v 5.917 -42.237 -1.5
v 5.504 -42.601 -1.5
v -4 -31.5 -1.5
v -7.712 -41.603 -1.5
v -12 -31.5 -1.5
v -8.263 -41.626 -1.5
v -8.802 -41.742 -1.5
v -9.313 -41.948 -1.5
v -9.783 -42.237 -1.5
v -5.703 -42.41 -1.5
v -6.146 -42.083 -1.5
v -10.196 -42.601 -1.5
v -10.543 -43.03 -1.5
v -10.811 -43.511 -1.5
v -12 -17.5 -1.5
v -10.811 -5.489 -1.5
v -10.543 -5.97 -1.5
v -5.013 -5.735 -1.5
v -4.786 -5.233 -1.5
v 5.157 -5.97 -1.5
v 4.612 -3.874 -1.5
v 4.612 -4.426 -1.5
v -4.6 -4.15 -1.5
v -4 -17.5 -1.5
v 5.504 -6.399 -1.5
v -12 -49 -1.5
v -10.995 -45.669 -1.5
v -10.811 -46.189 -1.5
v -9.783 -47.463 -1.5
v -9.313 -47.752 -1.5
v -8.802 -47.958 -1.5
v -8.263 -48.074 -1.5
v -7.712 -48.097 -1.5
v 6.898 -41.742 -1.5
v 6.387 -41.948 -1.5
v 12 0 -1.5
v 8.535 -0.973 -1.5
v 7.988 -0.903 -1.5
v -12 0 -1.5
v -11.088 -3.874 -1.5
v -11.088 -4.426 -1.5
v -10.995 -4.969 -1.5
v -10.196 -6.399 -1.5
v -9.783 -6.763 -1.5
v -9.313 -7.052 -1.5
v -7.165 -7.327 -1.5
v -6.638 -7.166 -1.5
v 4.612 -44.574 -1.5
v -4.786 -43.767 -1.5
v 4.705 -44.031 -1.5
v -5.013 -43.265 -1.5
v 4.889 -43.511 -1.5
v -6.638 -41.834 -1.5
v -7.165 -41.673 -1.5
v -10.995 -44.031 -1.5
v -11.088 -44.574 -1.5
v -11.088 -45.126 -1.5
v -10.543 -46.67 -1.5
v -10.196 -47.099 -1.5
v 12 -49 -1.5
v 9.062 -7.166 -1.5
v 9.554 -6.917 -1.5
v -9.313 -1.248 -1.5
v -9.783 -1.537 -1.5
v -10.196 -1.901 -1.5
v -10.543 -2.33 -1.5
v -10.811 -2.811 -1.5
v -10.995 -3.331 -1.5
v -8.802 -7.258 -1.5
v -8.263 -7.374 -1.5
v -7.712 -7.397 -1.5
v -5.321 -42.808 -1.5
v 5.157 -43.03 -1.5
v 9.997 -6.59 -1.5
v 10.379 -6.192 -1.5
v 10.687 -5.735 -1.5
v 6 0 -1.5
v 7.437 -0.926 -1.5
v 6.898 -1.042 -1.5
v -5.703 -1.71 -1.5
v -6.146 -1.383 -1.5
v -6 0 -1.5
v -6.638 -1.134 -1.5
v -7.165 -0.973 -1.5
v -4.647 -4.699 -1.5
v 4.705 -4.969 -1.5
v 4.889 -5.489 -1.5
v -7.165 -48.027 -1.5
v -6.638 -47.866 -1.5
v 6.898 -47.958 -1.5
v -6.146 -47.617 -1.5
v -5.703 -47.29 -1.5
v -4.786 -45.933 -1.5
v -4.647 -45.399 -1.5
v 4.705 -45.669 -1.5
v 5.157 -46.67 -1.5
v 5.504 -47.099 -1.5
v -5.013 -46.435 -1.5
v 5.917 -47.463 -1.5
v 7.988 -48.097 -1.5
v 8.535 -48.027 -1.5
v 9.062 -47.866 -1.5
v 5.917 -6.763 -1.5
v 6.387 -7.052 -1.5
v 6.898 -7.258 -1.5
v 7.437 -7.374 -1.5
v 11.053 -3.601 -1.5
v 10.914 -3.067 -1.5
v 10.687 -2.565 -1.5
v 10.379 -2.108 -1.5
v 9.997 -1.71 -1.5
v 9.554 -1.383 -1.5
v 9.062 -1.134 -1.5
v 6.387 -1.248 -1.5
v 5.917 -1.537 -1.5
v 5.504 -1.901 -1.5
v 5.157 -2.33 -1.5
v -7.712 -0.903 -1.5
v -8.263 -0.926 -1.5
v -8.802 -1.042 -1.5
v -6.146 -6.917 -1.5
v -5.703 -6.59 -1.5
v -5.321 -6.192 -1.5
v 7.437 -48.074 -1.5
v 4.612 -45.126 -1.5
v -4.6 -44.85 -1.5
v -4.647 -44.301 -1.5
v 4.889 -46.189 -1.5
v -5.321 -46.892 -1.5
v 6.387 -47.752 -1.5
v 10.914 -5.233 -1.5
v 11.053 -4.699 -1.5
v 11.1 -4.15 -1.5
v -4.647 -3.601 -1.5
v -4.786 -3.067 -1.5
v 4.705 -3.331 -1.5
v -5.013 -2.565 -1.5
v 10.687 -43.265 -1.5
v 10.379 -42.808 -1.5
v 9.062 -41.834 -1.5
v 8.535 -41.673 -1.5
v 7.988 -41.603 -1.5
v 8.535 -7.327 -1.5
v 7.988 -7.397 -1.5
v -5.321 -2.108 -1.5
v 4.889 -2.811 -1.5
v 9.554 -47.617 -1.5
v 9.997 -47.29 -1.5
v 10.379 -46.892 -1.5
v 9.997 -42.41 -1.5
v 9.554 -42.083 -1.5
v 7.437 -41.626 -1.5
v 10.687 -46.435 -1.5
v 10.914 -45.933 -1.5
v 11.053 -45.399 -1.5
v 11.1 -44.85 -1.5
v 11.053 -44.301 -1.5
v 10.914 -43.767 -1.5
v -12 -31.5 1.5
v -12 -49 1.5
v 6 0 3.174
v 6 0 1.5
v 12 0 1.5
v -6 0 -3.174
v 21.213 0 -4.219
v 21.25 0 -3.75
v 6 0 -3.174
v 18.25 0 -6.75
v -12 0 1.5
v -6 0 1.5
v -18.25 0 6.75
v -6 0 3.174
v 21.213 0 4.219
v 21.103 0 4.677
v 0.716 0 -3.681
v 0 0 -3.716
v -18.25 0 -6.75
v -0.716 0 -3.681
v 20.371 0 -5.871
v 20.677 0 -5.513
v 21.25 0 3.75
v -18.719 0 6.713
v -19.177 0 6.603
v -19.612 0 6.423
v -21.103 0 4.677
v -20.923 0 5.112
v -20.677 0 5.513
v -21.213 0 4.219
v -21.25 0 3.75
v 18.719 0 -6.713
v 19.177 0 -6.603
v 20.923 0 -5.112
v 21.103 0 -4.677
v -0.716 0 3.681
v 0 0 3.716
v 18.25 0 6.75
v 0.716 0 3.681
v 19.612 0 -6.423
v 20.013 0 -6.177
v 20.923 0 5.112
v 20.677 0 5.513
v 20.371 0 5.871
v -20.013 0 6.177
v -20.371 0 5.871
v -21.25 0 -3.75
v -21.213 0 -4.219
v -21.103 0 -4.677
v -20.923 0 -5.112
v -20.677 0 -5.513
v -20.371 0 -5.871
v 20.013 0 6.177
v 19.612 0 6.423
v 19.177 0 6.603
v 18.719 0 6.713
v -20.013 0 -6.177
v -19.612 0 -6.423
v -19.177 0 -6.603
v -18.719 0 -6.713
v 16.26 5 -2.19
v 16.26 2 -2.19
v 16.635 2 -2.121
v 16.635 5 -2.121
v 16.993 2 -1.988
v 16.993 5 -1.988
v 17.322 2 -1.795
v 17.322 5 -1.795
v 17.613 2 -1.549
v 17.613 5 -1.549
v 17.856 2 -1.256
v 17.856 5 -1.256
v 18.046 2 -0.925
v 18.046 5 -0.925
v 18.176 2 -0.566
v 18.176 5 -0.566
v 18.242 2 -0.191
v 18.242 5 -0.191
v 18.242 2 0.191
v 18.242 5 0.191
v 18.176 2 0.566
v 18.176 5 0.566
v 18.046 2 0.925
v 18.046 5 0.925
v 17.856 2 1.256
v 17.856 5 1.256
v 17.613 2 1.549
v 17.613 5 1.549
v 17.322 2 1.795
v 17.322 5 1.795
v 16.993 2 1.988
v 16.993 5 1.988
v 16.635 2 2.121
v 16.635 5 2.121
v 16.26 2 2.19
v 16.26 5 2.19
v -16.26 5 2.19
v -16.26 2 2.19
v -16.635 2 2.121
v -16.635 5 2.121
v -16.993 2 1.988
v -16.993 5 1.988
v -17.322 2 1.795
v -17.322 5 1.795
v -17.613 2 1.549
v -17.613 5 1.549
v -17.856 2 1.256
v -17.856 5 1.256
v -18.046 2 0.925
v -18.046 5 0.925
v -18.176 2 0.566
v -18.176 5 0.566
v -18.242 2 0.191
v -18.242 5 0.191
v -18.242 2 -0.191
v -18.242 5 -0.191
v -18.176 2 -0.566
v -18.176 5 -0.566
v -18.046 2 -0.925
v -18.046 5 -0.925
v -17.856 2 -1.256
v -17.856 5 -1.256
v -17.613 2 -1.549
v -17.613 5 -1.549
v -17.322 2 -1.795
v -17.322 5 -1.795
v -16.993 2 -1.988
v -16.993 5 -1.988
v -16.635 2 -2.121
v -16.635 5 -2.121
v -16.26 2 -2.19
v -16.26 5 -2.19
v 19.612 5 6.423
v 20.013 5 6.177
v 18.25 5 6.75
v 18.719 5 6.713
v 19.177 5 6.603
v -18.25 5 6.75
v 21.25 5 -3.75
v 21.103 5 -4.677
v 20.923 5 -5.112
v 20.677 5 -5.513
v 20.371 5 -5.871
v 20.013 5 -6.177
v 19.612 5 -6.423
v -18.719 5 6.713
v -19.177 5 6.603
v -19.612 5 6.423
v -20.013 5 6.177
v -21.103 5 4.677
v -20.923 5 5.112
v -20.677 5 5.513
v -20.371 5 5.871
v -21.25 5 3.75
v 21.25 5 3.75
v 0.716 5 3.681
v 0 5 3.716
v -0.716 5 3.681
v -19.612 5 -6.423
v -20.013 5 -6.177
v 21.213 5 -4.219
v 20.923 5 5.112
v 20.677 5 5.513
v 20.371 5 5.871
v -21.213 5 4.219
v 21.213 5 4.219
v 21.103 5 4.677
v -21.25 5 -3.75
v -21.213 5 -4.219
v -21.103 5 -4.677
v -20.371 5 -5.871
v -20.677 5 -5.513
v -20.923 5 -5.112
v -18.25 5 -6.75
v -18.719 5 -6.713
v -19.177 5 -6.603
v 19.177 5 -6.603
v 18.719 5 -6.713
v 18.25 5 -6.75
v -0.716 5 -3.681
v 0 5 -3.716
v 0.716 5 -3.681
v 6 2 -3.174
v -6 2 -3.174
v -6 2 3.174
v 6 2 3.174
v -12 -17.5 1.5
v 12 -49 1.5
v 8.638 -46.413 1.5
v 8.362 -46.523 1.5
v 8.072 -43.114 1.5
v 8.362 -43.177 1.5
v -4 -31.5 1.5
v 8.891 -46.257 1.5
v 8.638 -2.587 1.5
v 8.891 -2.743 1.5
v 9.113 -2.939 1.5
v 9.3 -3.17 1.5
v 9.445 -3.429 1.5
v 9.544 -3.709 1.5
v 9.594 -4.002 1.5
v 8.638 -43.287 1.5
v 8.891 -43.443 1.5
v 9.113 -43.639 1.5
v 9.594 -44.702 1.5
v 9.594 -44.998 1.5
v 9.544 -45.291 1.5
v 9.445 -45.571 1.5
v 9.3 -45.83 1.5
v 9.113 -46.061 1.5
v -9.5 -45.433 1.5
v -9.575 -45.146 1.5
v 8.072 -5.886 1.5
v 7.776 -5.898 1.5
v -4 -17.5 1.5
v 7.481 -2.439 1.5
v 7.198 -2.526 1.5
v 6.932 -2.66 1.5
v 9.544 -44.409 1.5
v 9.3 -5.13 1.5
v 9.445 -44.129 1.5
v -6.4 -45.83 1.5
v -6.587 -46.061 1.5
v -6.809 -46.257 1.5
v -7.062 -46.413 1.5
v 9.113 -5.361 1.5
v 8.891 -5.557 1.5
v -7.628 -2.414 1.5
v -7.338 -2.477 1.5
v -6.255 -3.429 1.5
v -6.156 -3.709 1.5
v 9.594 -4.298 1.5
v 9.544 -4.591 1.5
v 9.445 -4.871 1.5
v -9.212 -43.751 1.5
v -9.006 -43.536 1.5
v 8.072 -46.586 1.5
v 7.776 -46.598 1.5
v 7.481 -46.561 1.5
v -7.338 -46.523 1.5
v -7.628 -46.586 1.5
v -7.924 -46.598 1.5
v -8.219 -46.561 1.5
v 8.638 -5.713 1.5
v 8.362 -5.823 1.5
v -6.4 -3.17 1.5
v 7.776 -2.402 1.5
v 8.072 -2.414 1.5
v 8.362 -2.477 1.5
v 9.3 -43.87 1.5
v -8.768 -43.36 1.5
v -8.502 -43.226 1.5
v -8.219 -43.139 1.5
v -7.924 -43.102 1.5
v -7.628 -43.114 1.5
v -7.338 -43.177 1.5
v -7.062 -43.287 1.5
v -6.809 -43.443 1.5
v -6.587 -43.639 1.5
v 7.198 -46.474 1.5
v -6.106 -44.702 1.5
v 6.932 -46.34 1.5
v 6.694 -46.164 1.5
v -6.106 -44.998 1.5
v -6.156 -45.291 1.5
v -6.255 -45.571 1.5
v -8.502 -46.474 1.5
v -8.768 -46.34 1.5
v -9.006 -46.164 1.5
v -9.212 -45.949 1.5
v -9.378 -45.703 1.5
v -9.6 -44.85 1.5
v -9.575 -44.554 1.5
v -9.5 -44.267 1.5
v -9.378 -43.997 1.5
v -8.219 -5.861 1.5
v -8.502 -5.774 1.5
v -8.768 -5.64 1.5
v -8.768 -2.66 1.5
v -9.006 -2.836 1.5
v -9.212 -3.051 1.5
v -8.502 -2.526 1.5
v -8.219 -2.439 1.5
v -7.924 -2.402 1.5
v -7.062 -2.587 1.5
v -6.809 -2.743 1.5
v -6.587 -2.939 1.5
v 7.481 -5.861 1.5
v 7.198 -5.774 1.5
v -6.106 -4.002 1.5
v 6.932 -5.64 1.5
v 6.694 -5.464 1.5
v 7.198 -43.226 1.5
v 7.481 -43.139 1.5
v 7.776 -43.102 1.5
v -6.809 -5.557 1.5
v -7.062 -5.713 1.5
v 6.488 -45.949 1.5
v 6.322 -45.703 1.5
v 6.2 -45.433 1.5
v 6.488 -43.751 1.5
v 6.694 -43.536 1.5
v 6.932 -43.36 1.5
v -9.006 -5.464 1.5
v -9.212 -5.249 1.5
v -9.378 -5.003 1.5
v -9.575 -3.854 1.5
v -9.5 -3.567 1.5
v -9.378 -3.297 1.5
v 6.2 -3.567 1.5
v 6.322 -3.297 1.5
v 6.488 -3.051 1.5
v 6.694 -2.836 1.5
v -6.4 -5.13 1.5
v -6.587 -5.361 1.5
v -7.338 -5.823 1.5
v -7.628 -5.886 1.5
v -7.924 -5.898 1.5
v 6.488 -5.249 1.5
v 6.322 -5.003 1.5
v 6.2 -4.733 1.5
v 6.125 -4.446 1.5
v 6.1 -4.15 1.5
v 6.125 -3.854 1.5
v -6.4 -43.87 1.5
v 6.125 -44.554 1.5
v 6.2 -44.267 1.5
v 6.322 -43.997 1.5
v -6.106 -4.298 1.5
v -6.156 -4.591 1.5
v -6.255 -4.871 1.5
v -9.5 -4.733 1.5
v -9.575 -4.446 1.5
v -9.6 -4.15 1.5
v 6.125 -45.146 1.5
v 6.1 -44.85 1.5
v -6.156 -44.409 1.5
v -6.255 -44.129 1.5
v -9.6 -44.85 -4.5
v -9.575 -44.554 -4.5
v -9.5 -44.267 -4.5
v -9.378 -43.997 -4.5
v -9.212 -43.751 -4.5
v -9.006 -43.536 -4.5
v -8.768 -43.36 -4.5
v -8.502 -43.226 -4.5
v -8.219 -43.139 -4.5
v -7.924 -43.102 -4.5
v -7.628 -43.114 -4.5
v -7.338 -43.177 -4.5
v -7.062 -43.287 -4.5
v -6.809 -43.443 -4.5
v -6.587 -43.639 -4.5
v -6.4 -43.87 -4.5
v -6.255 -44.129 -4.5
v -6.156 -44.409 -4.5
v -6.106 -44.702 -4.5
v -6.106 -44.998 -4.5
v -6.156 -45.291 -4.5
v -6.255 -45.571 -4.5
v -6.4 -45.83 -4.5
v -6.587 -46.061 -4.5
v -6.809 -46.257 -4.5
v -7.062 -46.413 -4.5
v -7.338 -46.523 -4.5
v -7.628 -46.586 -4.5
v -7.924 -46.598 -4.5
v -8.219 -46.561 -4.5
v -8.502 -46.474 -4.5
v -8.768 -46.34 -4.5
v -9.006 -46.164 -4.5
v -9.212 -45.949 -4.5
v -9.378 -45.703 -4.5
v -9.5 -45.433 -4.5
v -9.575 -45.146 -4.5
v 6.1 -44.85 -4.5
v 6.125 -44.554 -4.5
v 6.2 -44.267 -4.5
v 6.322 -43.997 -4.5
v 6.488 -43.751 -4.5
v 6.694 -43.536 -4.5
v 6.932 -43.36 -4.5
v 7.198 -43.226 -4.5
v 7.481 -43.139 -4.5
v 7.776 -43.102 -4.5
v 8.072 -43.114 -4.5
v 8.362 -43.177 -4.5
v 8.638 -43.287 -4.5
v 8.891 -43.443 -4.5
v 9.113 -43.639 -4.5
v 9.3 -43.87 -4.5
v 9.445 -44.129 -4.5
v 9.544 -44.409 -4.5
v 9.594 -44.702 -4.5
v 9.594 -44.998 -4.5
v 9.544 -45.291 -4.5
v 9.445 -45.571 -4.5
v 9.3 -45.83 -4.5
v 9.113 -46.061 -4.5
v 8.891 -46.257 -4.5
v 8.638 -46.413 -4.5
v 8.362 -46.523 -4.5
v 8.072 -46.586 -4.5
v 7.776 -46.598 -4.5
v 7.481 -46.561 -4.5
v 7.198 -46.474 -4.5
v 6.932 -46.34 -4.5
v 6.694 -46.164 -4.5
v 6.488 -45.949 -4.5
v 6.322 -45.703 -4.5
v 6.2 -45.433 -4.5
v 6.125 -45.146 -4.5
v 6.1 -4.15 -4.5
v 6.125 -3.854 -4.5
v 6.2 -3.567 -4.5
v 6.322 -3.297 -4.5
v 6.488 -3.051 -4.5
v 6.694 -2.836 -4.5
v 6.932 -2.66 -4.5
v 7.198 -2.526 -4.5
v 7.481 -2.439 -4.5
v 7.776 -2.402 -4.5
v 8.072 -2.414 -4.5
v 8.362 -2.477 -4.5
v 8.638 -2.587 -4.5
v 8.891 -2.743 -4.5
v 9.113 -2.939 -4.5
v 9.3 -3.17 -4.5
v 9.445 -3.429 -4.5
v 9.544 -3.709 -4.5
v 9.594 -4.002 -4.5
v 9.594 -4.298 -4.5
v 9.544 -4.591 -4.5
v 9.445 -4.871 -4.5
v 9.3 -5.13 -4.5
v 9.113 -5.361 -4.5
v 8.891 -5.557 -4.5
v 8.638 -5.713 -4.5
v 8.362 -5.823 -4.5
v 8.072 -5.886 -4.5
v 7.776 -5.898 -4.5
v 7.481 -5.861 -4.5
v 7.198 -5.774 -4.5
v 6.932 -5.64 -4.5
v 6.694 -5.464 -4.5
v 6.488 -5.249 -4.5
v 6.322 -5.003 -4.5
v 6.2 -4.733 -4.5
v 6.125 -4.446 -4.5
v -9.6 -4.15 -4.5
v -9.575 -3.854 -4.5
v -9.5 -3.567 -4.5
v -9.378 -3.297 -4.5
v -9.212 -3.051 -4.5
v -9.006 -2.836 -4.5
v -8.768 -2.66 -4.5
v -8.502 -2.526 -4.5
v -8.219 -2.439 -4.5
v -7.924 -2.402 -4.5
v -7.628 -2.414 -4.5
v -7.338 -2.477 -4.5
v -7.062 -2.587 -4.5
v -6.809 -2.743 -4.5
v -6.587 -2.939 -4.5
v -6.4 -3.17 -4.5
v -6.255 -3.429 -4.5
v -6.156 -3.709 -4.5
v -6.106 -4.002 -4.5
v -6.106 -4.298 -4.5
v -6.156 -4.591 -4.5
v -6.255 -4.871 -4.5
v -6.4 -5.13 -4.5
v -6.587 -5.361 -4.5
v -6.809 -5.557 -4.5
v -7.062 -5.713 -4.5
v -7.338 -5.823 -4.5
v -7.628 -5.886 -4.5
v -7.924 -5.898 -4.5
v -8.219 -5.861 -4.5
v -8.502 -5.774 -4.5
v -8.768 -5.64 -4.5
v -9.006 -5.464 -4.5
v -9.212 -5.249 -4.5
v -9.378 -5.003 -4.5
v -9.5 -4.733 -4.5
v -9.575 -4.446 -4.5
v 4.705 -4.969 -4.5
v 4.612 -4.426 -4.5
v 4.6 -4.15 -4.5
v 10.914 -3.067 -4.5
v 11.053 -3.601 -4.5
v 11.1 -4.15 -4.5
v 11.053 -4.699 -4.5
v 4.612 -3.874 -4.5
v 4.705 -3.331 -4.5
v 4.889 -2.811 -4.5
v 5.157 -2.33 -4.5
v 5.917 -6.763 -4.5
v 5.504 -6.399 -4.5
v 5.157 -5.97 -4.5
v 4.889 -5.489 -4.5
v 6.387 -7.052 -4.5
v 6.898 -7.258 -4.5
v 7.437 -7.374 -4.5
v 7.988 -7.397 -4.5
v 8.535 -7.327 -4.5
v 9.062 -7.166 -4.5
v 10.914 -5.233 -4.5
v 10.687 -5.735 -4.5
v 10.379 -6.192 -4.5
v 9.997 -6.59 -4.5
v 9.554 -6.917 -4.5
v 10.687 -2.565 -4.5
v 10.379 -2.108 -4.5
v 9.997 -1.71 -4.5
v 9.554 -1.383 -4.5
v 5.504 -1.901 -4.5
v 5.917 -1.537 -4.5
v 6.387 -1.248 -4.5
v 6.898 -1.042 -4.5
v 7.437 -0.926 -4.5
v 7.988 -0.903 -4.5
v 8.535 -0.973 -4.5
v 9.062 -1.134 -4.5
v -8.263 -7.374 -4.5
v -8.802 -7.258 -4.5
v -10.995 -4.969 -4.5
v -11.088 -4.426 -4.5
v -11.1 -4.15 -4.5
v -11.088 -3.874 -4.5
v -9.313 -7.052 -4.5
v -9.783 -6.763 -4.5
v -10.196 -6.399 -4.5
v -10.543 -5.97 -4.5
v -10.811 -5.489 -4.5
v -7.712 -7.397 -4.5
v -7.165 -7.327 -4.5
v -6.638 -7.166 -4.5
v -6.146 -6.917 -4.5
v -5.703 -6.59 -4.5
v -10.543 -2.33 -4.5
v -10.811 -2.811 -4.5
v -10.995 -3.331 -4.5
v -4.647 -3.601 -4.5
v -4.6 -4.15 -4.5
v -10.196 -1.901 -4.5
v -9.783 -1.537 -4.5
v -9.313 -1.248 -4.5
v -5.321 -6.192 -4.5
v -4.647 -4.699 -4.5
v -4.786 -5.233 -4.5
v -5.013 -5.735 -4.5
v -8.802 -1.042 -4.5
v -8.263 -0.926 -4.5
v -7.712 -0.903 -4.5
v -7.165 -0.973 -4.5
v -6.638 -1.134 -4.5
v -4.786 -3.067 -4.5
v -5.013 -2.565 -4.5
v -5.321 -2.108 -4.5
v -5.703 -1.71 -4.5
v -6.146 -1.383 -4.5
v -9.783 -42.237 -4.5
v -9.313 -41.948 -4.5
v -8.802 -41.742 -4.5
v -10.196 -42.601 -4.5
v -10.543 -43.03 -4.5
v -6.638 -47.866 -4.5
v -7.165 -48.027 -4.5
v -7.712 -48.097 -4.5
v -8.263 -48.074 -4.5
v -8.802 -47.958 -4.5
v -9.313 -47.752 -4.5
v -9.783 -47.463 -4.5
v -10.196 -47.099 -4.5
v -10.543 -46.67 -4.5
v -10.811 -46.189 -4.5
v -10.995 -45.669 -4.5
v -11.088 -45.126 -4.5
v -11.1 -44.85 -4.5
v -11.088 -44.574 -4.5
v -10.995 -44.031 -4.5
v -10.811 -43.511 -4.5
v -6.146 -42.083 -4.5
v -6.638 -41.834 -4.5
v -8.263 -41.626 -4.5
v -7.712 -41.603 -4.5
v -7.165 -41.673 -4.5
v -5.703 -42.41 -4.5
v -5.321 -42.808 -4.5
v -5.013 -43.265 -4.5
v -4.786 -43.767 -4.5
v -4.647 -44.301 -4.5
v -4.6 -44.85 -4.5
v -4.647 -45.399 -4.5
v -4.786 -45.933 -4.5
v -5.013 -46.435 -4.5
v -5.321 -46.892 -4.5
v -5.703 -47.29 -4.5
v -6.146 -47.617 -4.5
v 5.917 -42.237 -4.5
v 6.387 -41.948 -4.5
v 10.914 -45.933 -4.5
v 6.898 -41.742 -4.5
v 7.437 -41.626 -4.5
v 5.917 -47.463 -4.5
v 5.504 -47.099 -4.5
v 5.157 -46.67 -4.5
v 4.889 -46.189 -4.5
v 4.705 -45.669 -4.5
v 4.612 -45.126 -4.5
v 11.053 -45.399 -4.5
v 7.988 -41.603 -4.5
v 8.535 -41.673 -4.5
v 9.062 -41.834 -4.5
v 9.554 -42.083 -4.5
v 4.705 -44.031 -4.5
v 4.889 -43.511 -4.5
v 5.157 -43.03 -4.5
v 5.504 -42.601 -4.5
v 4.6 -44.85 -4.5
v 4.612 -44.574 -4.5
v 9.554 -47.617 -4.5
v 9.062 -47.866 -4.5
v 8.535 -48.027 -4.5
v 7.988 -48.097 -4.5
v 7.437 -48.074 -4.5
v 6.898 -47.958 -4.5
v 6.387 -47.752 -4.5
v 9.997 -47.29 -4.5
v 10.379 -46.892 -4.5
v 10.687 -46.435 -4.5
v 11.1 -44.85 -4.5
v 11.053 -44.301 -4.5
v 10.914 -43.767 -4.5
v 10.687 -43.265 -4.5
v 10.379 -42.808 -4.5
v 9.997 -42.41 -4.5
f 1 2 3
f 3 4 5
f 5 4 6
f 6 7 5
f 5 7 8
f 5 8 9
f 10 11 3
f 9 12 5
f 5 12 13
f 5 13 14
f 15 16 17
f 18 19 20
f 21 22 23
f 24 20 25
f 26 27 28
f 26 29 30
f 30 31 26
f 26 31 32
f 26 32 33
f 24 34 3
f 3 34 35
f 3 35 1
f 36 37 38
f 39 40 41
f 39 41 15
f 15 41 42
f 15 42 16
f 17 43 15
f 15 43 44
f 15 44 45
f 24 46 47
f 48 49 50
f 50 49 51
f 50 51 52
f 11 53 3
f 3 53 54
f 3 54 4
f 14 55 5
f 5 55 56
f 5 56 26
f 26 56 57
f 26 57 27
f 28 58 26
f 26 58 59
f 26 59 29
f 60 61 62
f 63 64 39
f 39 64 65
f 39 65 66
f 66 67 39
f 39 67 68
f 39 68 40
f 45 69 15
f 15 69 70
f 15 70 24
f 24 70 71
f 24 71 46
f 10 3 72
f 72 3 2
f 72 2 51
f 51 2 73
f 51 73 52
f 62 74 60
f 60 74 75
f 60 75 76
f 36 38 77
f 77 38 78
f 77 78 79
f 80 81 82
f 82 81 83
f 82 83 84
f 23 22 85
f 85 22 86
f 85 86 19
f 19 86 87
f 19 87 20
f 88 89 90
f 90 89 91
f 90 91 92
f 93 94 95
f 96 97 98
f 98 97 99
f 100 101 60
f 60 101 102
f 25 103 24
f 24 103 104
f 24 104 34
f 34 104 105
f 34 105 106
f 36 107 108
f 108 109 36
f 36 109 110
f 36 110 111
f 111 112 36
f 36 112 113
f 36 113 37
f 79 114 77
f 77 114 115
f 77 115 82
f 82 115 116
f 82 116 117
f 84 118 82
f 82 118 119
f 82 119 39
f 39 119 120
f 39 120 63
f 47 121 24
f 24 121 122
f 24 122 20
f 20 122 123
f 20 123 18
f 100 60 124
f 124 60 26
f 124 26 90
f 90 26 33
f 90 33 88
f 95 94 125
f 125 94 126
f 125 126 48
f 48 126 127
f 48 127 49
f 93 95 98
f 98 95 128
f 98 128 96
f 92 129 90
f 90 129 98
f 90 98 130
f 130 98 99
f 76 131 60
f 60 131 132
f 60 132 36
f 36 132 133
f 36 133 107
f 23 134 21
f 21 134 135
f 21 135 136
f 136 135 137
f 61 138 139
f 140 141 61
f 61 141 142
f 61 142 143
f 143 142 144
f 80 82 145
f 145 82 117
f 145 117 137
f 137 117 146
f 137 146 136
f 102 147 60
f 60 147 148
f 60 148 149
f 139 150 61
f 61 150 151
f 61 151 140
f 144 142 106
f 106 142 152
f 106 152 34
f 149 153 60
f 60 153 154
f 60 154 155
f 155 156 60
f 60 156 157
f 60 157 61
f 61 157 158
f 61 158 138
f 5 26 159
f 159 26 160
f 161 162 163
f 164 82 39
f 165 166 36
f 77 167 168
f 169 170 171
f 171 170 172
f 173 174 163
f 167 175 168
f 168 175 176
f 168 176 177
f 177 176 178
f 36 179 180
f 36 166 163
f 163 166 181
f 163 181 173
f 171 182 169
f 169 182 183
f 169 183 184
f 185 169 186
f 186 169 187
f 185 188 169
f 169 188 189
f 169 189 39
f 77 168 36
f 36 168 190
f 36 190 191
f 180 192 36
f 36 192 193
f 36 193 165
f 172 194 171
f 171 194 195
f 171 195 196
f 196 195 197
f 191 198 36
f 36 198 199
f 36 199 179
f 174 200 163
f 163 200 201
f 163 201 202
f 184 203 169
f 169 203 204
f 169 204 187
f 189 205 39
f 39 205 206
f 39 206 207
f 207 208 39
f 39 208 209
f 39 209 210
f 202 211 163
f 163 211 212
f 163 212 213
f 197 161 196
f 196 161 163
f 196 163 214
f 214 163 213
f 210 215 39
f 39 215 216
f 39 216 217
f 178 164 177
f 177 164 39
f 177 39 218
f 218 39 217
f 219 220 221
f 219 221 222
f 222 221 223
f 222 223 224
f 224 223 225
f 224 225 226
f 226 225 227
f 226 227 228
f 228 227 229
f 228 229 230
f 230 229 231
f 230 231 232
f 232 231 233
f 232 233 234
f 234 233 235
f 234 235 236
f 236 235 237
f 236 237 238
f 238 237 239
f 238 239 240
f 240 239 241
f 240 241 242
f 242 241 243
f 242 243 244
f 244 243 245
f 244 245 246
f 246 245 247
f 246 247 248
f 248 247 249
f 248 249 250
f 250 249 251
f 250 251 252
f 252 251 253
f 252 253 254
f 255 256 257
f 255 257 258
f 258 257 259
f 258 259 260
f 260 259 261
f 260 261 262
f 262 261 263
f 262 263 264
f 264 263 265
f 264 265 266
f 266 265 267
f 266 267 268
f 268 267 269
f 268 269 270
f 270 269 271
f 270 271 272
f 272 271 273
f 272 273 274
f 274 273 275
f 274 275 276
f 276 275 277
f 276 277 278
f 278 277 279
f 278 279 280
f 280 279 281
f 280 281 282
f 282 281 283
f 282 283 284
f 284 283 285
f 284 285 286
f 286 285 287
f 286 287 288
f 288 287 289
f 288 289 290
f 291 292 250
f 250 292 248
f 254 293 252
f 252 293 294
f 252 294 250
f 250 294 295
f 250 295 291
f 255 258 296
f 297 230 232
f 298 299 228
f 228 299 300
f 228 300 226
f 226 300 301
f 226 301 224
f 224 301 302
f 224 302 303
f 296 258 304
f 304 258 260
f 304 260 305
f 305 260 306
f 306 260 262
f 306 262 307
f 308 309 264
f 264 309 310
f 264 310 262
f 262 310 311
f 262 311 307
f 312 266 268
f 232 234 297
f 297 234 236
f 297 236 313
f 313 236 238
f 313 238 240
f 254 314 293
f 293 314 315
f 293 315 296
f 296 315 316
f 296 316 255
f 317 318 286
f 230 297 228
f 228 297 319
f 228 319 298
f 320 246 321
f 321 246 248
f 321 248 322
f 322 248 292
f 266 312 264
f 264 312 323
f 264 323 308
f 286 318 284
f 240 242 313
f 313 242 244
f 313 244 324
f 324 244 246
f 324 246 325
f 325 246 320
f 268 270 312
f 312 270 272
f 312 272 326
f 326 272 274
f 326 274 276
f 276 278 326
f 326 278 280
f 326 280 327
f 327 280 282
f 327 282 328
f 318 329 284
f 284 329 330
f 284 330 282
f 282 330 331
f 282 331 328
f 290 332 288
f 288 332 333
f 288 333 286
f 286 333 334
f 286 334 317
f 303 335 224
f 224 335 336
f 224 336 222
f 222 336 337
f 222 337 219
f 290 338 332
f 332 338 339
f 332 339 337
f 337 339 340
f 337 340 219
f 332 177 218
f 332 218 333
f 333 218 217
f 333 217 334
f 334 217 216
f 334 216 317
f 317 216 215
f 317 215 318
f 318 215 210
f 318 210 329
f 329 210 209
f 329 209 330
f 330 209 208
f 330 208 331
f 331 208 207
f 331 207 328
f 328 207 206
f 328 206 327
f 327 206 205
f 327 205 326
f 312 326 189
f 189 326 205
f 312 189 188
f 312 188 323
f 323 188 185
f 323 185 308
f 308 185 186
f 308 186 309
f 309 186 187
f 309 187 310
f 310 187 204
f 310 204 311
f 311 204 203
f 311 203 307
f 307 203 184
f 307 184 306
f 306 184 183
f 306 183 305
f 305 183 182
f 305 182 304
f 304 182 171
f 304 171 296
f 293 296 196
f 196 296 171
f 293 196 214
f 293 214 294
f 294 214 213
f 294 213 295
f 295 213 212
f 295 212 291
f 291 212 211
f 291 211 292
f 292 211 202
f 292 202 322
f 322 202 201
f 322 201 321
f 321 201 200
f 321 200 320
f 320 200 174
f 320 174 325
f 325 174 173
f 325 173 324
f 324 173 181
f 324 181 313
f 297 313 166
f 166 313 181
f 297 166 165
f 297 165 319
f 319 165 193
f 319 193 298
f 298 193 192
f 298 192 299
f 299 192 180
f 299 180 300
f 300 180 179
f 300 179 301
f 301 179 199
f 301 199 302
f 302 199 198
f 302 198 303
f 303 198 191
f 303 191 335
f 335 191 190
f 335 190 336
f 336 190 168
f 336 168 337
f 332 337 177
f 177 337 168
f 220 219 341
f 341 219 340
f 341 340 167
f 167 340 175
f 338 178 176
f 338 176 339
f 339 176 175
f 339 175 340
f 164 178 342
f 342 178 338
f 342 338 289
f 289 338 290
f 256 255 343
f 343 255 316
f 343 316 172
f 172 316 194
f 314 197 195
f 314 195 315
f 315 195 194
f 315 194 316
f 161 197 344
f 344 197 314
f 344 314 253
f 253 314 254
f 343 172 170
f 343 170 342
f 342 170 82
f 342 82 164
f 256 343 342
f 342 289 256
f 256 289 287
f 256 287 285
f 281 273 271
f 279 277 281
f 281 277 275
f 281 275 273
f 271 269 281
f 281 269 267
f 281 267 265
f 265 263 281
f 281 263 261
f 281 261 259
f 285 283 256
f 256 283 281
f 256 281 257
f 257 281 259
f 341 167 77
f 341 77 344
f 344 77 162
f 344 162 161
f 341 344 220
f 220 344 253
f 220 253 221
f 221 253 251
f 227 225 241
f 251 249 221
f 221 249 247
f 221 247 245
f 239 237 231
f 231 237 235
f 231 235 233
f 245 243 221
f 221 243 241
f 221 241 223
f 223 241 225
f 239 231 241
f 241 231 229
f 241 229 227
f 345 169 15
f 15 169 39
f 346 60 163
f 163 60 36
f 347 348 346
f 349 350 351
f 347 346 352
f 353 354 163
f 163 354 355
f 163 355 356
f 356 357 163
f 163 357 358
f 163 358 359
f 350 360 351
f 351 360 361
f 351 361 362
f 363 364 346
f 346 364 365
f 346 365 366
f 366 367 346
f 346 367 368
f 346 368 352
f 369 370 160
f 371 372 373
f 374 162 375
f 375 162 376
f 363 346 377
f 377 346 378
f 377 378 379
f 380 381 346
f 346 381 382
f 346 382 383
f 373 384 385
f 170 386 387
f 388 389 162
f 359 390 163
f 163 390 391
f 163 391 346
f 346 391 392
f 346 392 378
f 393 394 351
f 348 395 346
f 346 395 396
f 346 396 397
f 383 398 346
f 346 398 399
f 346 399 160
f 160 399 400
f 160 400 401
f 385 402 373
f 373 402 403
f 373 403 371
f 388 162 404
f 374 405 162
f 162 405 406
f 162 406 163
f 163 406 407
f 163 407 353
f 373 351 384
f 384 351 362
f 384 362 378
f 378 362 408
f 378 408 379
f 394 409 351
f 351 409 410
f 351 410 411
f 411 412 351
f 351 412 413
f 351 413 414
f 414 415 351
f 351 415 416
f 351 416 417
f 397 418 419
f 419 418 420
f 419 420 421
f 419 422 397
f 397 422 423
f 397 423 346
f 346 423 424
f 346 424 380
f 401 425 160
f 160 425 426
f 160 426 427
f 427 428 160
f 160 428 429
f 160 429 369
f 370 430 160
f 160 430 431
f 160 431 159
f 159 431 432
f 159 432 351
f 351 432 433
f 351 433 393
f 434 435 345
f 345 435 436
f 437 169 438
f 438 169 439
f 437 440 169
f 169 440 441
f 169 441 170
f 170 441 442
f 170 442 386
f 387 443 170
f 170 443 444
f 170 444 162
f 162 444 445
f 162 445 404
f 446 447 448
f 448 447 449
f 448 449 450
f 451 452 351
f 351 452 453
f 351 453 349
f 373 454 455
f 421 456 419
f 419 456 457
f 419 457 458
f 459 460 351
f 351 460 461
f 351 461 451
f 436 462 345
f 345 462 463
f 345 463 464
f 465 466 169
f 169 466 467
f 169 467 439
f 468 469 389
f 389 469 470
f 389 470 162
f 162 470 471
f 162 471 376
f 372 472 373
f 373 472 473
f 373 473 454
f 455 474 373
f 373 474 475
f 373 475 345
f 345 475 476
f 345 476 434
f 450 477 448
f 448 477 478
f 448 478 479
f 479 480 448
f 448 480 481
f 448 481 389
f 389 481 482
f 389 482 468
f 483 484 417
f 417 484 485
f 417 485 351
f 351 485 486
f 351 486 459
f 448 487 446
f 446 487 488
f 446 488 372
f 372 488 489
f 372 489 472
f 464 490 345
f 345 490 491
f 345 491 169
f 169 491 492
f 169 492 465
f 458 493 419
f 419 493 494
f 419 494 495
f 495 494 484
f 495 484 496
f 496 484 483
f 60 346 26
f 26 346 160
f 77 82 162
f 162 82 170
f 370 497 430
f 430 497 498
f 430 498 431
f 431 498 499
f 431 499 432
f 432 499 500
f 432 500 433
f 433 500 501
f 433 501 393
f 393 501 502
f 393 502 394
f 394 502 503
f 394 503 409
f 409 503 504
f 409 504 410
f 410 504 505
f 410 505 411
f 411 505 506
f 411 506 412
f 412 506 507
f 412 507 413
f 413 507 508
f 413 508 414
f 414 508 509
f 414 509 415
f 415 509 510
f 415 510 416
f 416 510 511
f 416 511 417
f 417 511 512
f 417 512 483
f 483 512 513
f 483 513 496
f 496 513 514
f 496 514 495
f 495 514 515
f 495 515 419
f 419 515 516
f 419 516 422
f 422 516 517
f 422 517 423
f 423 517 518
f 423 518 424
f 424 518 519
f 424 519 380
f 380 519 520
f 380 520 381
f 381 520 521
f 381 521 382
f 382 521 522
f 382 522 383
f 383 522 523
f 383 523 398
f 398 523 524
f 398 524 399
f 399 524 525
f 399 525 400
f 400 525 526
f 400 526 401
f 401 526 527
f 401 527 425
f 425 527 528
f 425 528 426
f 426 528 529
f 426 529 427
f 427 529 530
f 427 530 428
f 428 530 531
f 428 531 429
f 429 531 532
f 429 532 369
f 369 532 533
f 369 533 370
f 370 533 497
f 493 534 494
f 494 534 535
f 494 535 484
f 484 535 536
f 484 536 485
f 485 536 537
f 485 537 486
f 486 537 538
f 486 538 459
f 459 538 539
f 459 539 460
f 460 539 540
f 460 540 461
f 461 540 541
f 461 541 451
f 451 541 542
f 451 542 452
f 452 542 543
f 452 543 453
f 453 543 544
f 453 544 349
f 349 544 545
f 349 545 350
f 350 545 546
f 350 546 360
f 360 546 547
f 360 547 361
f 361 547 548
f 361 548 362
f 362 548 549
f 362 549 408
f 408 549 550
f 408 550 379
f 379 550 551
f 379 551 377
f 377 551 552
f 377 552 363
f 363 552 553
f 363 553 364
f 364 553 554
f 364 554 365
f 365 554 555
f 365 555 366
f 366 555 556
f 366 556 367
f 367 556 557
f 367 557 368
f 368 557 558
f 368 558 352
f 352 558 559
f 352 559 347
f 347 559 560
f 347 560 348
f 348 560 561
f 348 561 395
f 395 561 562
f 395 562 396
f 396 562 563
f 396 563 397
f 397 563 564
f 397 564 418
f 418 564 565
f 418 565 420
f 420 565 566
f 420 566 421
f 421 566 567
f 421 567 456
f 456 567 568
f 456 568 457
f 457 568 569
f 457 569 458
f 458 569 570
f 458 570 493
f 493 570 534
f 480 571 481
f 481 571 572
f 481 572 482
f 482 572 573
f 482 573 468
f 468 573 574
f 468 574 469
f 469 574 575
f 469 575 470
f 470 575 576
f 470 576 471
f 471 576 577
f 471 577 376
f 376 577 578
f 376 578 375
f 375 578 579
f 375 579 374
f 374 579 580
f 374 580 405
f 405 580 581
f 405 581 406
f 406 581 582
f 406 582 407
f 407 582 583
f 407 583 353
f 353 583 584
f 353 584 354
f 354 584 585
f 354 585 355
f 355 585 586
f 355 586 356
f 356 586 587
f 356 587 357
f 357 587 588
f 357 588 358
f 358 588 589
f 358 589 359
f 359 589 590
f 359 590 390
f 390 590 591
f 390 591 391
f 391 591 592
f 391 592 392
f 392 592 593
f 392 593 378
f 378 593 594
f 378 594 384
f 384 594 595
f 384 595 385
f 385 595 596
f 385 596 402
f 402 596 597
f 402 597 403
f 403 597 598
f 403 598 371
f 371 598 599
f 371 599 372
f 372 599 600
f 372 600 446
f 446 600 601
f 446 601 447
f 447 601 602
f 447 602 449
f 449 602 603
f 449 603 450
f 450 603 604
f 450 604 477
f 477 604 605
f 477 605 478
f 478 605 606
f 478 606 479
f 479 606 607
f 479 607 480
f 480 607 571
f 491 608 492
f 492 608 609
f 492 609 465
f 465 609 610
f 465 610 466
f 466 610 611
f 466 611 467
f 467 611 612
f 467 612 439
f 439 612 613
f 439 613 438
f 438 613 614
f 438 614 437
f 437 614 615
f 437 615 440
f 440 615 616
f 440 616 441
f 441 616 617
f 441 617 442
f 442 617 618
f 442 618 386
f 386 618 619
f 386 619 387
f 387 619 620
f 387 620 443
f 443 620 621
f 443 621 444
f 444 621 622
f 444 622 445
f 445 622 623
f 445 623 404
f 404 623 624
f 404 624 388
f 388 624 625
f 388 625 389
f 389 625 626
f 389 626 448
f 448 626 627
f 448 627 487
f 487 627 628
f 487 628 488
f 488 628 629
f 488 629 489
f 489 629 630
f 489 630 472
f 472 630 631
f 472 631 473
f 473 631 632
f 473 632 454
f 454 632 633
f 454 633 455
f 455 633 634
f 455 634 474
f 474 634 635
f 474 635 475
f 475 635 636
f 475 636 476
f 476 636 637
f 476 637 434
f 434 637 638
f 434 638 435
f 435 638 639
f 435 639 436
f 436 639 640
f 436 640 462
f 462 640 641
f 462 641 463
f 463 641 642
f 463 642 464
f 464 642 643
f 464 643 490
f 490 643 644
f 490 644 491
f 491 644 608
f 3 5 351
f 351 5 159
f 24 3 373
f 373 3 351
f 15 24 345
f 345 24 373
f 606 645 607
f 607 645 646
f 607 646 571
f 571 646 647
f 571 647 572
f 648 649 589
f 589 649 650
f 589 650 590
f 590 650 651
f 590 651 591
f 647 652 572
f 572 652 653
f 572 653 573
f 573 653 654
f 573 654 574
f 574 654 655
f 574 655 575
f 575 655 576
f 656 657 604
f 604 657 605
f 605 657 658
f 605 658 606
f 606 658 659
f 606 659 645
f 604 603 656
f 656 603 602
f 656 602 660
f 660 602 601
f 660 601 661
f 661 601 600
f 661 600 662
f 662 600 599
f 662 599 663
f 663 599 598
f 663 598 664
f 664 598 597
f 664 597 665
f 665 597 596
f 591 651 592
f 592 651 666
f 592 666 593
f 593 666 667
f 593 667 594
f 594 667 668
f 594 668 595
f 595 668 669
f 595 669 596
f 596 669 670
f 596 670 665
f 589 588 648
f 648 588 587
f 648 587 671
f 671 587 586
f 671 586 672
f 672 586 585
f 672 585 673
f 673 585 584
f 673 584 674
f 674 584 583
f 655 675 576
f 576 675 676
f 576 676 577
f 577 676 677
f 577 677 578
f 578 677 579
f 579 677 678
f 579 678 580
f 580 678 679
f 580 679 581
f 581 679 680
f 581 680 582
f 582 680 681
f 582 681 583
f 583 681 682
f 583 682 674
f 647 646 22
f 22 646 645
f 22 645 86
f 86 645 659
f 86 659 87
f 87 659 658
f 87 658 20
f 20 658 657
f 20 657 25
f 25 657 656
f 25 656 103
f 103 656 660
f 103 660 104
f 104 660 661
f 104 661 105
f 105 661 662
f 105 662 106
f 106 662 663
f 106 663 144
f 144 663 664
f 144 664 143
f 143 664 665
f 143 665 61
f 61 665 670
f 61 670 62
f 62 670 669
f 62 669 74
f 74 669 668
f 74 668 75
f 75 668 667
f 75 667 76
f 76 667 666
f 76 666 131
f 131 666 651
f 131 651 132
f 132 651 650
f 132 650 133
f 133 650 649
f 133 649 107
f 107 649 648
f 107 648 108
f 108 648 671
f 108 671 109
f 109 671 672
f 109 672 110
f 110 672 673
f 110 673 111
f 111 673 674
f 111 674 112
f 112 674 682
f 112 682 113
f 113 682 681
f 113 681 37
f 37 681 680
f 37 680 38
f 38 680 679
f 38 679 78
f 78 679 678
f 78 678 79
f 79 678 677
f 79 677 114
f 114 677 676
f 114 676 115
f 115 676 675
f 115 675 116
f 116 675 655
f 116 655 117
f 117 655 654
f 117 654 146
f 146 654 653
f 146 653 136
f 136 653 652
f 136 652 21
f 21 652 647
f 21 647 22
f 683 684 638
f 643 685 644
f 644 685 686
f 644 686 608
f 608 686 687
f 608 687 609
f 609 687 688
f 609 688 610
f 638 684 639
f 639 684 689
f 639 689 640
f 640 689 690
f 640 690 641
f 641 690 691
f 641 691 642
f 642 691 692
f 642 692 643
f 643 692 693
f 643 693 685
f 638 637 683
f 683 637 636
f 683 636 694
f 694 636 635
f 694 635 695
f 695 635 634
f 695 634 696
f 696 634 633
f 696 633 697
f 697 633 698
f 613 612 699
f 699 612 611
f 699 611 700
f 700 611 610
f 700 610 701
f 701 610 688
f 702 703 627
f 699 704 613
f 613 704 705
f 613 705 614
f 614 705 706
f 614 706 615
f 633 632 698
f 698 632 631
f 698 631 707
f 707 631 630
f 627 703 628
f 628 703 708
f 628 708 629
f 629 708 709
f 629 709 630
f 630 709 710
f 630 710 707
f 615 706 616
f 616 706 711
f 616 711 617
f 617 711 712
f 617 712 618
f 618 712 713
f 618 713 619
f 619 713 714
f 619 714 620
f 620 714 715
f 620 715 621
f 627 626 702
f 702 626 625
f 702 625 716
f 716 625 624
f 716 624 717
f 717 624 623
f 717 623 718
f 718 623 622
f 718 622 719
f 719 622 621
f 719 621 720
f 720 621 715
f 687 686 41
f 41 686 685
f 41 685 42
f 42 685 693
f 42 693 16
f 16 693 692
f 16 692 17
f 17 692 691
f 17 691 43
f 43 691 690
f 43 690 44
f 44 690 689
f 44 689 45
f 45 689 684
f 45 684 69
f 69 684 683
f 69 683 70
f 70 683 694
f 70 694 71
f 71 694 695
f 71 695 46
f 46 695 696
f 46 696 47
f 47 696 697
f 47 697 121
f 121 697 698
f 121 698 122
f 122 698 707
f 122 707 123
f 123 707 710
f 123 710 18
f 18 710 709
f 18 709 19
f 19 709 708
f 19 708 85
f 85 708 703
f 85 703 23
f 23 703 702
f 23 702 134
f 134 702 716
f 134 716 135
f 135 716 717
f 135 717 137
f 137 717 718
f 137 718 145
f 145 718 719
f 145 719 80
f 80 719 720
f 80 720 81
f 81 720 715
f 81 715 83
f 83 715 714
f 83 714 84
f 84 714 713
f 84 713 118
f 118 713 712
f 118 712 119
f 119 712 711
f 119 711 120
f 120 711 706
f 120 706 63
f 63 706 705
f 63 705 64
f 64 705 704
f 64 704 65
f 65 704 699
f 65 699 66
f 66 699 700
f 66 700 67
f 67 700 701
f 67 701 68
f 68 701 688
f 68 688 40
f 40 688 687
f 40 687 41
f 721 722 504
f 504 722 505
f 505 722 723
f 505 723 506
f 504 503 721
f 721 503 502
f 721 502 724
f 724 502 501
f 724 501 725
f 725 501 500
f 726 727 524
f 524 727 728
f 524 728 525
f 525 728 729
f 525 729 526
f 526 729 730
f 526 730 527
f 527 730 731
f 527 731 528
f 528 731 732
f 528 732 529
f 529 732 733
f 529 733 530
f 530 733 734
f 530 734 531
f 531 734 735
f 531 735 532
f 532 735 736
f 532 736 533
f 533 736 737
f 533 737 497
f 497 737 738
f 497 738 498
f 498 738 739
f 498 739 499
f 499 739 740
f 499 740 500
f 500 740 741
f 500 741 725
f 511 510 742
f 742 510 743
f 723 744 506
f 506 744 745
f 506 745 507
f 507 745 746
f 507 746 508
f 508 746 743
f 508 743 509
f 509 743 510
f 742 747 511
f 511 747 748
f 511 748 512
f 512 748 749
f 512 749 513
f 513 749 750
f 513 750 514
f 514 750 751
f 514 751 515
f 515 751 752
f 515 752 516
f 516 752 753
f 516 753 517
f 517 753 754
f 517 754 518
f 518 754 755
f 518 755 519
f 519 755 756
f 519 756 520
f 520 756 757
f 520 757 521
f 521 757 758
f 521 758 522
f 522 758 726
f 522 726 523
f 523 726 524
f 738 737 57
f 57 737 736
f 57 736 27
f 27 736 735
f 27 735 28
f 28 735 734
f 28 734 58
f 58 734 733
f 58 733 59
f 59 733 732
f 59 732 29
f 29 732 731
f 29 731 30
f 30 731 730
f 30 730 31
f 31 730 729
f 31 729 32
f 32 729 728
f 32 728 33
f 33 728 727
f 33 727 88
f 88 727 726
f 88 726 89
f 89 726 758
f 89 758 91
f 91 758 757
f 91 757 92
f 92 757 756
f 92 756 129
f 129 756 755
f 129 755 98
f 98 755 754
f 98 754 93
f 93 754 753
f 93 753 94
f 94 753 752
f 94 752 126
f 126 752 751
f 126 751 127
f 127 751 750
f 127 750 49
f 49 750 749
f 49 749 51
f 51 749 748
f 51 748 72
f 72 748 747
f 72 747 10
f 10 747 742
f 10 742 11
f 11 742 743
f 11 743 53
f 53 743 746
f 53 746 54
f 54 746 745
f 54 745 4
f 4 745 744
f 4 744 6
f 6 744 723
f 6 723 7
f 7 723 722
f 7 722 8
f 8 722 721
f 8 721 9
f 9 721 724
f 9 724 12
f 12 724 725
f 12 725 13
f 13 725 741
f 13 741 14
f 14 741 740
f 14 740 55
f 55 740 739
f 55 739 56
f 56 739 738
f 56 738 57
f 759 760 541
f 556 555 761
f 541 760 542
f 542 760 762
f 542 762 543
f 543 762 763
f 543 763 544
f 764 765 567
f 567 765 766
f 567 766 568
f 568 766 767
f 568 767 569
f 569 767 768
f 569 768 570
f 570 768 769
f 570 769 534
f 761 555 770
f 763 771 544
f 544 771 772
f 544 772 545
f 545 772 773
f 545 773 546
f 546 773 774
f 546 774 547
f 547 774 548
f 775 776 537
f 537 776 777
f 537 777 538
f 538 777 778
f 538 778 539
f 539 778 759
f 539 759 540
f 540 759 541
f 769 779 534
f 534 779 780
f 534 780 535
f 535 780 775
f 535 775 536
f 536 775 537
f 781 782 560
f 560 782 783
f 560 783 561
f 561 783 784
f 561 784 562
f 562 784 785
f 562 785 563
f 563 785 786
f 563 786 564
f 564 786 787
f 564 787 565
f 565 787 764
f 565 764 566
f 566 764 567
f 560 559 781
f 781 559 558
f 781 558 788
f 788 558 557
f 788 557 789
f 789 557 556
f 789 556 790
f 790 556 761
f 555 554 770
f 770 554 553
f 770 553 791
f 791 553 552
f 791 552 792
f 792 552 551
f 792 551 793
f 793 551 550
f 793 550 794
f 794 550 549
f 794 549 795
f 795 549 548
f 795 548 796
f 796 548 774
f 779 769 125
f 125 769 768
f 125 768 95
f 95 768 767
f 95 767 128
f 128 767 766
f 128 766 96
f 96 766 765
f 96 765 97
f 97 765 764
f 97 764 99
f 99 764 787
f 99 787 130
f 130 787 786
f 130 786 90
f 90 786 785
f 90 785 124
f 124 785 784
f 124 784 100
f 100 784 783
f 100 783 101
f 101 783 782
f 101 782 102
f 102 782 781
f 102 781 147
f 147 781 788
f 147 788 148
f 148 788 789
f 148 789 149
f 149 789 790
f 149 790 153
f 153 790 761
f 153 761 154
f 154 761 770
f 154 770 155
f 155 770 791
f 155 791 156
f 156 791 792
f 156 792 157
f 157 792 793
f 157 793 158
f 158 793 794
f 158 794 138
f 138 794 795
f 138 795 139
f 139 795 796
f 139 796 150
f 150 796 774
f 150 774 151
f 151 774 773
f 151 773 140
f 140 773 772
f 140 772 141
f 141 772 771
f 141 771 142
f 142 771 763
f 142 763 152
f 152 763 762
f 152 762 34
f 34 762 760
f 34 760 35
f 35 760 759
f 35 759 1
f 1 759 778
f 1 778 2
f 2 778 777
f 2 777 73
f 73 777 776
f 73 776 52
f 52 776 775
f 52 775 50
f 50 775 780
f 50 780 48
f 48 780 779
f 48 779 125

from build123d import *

# Parameters (mm, degrees)
BOSS_EXTRUDE1_DEPTH = 5
BOSS_EXTRUDE2_DEPTH = 2
SKETCH4_W           = 24
SKETCH4_H           = 3
BOSS_EXTRUDE3_DEPTH = 49
CUT_EXTRUDE1_REACH  = 10.25
SKETCH5_R           = 1.75
SKETCH5_W           = 8
SKETCH5_H           = 14
SKETCH6_R           = 3.25
SKETCH6_R_2         = 1.75
BOSS_EXTRUDE4_DEPTH = 3


with BuildPart() as part:
    # Sketch1 → Boss-Extrude1 (new body)
    with BuildSketch(Plane(origin=(0, 0, 0), x_dir=(1, 0, 0), z_dir=(0, 1, 0))):
        with BuildLine():
            Line((-18.25, 6.75), (18.25, 6.75))
            ThreePointArc((18.25, 6.75), (20.371320344, 5.871320344), (21.25, 3.75))
            Line((21.25, 3.75), (21.25, -3.75))
            ThreePointArc((21.25, -3.75), (20.371320344, -5.871320344), (18.25, -6.75))
            Line((18.25, -6.75), (-18.25, -6.75))
            ThreePointArc((-18.25, -6.75), (-20.371320344, -5.871320344), (-21.25, -3.75))
            Line((-21.25, -3.75), (-21.25, 3.75))
            ThreePointArc((-21.25, 3.75), (-20.371320344, 5.871320344), (-18.25, 6.75))
        make_face()
        with BuildLine():
            Line((16.260111444, 2.189943648), (0.716289014, 3.681276533))
            ThreePointArc((0.716289014, 3.681276533), (0, 3.715559552), (-0.716289014, 3.681276533))
            Line((-0.716289014, 3.681276533), (-16.260111444, 2.189943648))
            ThreePointArc((-16.260111444, 2.189943648), (-18.25, 0), (-16.260111444, -2.189943648))
            Line((-16.260111444, -2.189943648), (-0.716289014, -3.681276533))
            ThreePointArc((-0.716289014, -3.681276533), (0, -3.715559552), (0.716289014, -3.681276533))
            Line((0.716289014, -3.681276533), (16.260111444, -2.189943648))
            ThreePointArc((16.260111444, -2.189943648), (18.25, 0), (16.260111444, 2.189943648))
        make_face(mode=Mode.SUBTRACT)
    extrude(amount=BOSS_EXTRUDE1_DEPTH)

    # Sketch2 → Boss-Extrude2 (add)
    with BuildSketch(Plane.XZ):
        with BuildLine():
            Line((-16.260111444, 2.189943648), (-6, 3.174337395))
            Line((-6, 3.174337395), (-6, -3.174337395))
            Line((-6, -3.174337395), (-16.260111444, -2.189943648))
            ThreePointArc((-16.260111444, -2.189943648), (-18.25, 0), (-16.260111444, 2.189943648))
        make_face()
        with BuildLine():
            Line((6, -3.174337395), (16.260111444, -2.189943648))
            ThreePointArc((16.260111444, -2.189943648), (18.25, 0), (16.260111444, 2.189943648))
            Line((16.260111444, 2.189943648), (6, 3.174337395))
            Line((6, 3.174337395), (6, -3.174337395))
        make_face()
    extrude(amount=-BOSS_EXTRUDE2_DEPTH)

    # Sketch4 → Boss-Extrude3 (add)
    with BuildSketch(Plane.XZ):
        Rectangle(SKETCH4_W, SKETCH4_H)
    extrude(amount=BOSS_EXTRUDE3_DEPTH)

    # Sketch5 → Cut-Extrude1 (cut, up to next)
    with BuildSketch(Plane(origin=(0, 0, -1.5), x_dir=(-1, 0, 0), z_dir=(0, 0, -1)), mode=Mode.PRIVATE) as cut_extrude1_sk1:
        with Locations((7.85, -44.85)):
            Circle(SKETCH5_R)
    cut_extrude1_tool1 = extrude(cut_extrude1_sk1.sketch, amount=-CUT_EXTRUDE1_REACH, mode=Mode.PRIVATE) & part.part
    add(cut_extrude1_tool1.solids().sort_by_distance((-7.85, -44.85, -1.5))[0], mode=Mode.SUBTRACT)
    # Sketch5 → Cut-Extrude1 (cut, up to next)
    with BuildSketch(Plane(origin=(0, 0, -1.5), x_dir=(-1, 0, 0), z_dir=(0, 0, -1)), mode=Mode.PRIVATE) as cut_extrude1_sk2:
        with Locations((-7.85, -44.85)):
            Circle(SKETCH5_R)
    cut_extrude1_tool2 = extrude(cut_extrude1_sk2.sketch, amount=-CUT_EXTRUDE1_REACH, mode=Mode.PRIVATE) & part.part
    add(cut_extrude1_tool2.solids().sort_by_distance((7.85, -44.85, -1.5))[0], mode=Mode.SUBTRACT)
    # Sketch5 → Cut-Extrude1 (cut, up to next)
    with BuildSketch(Plane(origin=(0, 0, -1.5), x_dir=(-1, 0, 0), z_dir=(0, 0, -1)), mode=Mode.PRIVATE) as cut_extrude1_sk3:
        with Locations((-7.85, -4.15)):
            Circle(SKETCH5_R)
    cut_extrude1_tool3 = extrude(cut_extrude1_sk3.sketch, amount=-CUT_EXTRUDE1_REACH, mode=Mode.PRIVATE) & part.part
    add(cut_extrude1_tool3.solids().sort_by_distance((7.85, -4.15, -1.5))[0], mode=Mode.SUBTRACT)
    # Sketch5 → Cut-Extrude1 (cut, up to next)
    with BuildSketch(Plane(origin=(0, 0, -1.5), x_dir=(-1, 0, 0), z_dir=(0, 0, -1)), mode=Mode.PRIVATE) as cut_extrude1_sk4:
        with Locations((7.85, -4.15)):
            Circle(SKETCH5_R)
    cut_extrude1_tool4 = extrude(cut_extrude1_sk4.sketch, amount=-CUT_EXTRUDE1_REACH, mode=Mode.PRIVATE) & part.part
    add(cut_extrude1_tool4.solids().sort_by_distance((-7.85, -4.15, -1.5))[0], mode=Mode.SUBTRACT)
    # Sketch5 → Cut-Extrude1 (cut, up to next)
    with BuildSketch(Plane(origin=(0, 0, -1.5), x_dir=(-1, 0, 0), z_dir=(0, 0, -1)), mode=Mode.PRIVATE) as cut_extrude1_sk5:
        with Locations((8, -24.5)):
            Rectangle(SKETCH5_W, SKETCH5_H)
    cut_extrude1_tool5 = extrude(cut_extrude1_sk5.sketch, amount=-CUT_EXTRUDE1_REACH, mode=Mode.PRIVATE) & part.part
    add(cut_extrude1_tool5.solids().sort_by_distance((-8, -24.5, -1.5))[0], mode=Mode.SUBTRACT)

    # Sketch6 → Boss-Extrude4 (add)
    with BuildSketch(Plane(origin=(0, 0, -1.5), x_dir=(-1, 0, 0), z_dir=(0, 0, -1))):
        with Locations((-7.85, -4.15)):
            Circle(SKETCH6_R)
        with Locations((-7.85, -4.15)):
            Circle(SKETCH6_R_2, mode=Mode.SUBTRACT)
        with Locations((7.85, -4.15)):
            Circle(SKETCH6_R)
        with Locations((7.85, -4.15)):
            Circle(SKETCH6_R_2, mode=Mode.SUBTRACT)
        with Locations((7.85, -44.85)):
            Circle(SKETCH6_R)
        with Locations((7.85, -44.85)):
            Circle(SKETCH6_R_2, mode=Mode.SUBTRACT)
        with Locations((-7.85, -44.85)):
            Circle(SKETCH6_R)
        with Locations((-7.85, -44.85)):
            Circle(SKETCH6_R_2, mode=Mode.SUBTRACT)
    extrude(amount=BOSS_EXTRUDE4_DEPTH)


solid = part.part
